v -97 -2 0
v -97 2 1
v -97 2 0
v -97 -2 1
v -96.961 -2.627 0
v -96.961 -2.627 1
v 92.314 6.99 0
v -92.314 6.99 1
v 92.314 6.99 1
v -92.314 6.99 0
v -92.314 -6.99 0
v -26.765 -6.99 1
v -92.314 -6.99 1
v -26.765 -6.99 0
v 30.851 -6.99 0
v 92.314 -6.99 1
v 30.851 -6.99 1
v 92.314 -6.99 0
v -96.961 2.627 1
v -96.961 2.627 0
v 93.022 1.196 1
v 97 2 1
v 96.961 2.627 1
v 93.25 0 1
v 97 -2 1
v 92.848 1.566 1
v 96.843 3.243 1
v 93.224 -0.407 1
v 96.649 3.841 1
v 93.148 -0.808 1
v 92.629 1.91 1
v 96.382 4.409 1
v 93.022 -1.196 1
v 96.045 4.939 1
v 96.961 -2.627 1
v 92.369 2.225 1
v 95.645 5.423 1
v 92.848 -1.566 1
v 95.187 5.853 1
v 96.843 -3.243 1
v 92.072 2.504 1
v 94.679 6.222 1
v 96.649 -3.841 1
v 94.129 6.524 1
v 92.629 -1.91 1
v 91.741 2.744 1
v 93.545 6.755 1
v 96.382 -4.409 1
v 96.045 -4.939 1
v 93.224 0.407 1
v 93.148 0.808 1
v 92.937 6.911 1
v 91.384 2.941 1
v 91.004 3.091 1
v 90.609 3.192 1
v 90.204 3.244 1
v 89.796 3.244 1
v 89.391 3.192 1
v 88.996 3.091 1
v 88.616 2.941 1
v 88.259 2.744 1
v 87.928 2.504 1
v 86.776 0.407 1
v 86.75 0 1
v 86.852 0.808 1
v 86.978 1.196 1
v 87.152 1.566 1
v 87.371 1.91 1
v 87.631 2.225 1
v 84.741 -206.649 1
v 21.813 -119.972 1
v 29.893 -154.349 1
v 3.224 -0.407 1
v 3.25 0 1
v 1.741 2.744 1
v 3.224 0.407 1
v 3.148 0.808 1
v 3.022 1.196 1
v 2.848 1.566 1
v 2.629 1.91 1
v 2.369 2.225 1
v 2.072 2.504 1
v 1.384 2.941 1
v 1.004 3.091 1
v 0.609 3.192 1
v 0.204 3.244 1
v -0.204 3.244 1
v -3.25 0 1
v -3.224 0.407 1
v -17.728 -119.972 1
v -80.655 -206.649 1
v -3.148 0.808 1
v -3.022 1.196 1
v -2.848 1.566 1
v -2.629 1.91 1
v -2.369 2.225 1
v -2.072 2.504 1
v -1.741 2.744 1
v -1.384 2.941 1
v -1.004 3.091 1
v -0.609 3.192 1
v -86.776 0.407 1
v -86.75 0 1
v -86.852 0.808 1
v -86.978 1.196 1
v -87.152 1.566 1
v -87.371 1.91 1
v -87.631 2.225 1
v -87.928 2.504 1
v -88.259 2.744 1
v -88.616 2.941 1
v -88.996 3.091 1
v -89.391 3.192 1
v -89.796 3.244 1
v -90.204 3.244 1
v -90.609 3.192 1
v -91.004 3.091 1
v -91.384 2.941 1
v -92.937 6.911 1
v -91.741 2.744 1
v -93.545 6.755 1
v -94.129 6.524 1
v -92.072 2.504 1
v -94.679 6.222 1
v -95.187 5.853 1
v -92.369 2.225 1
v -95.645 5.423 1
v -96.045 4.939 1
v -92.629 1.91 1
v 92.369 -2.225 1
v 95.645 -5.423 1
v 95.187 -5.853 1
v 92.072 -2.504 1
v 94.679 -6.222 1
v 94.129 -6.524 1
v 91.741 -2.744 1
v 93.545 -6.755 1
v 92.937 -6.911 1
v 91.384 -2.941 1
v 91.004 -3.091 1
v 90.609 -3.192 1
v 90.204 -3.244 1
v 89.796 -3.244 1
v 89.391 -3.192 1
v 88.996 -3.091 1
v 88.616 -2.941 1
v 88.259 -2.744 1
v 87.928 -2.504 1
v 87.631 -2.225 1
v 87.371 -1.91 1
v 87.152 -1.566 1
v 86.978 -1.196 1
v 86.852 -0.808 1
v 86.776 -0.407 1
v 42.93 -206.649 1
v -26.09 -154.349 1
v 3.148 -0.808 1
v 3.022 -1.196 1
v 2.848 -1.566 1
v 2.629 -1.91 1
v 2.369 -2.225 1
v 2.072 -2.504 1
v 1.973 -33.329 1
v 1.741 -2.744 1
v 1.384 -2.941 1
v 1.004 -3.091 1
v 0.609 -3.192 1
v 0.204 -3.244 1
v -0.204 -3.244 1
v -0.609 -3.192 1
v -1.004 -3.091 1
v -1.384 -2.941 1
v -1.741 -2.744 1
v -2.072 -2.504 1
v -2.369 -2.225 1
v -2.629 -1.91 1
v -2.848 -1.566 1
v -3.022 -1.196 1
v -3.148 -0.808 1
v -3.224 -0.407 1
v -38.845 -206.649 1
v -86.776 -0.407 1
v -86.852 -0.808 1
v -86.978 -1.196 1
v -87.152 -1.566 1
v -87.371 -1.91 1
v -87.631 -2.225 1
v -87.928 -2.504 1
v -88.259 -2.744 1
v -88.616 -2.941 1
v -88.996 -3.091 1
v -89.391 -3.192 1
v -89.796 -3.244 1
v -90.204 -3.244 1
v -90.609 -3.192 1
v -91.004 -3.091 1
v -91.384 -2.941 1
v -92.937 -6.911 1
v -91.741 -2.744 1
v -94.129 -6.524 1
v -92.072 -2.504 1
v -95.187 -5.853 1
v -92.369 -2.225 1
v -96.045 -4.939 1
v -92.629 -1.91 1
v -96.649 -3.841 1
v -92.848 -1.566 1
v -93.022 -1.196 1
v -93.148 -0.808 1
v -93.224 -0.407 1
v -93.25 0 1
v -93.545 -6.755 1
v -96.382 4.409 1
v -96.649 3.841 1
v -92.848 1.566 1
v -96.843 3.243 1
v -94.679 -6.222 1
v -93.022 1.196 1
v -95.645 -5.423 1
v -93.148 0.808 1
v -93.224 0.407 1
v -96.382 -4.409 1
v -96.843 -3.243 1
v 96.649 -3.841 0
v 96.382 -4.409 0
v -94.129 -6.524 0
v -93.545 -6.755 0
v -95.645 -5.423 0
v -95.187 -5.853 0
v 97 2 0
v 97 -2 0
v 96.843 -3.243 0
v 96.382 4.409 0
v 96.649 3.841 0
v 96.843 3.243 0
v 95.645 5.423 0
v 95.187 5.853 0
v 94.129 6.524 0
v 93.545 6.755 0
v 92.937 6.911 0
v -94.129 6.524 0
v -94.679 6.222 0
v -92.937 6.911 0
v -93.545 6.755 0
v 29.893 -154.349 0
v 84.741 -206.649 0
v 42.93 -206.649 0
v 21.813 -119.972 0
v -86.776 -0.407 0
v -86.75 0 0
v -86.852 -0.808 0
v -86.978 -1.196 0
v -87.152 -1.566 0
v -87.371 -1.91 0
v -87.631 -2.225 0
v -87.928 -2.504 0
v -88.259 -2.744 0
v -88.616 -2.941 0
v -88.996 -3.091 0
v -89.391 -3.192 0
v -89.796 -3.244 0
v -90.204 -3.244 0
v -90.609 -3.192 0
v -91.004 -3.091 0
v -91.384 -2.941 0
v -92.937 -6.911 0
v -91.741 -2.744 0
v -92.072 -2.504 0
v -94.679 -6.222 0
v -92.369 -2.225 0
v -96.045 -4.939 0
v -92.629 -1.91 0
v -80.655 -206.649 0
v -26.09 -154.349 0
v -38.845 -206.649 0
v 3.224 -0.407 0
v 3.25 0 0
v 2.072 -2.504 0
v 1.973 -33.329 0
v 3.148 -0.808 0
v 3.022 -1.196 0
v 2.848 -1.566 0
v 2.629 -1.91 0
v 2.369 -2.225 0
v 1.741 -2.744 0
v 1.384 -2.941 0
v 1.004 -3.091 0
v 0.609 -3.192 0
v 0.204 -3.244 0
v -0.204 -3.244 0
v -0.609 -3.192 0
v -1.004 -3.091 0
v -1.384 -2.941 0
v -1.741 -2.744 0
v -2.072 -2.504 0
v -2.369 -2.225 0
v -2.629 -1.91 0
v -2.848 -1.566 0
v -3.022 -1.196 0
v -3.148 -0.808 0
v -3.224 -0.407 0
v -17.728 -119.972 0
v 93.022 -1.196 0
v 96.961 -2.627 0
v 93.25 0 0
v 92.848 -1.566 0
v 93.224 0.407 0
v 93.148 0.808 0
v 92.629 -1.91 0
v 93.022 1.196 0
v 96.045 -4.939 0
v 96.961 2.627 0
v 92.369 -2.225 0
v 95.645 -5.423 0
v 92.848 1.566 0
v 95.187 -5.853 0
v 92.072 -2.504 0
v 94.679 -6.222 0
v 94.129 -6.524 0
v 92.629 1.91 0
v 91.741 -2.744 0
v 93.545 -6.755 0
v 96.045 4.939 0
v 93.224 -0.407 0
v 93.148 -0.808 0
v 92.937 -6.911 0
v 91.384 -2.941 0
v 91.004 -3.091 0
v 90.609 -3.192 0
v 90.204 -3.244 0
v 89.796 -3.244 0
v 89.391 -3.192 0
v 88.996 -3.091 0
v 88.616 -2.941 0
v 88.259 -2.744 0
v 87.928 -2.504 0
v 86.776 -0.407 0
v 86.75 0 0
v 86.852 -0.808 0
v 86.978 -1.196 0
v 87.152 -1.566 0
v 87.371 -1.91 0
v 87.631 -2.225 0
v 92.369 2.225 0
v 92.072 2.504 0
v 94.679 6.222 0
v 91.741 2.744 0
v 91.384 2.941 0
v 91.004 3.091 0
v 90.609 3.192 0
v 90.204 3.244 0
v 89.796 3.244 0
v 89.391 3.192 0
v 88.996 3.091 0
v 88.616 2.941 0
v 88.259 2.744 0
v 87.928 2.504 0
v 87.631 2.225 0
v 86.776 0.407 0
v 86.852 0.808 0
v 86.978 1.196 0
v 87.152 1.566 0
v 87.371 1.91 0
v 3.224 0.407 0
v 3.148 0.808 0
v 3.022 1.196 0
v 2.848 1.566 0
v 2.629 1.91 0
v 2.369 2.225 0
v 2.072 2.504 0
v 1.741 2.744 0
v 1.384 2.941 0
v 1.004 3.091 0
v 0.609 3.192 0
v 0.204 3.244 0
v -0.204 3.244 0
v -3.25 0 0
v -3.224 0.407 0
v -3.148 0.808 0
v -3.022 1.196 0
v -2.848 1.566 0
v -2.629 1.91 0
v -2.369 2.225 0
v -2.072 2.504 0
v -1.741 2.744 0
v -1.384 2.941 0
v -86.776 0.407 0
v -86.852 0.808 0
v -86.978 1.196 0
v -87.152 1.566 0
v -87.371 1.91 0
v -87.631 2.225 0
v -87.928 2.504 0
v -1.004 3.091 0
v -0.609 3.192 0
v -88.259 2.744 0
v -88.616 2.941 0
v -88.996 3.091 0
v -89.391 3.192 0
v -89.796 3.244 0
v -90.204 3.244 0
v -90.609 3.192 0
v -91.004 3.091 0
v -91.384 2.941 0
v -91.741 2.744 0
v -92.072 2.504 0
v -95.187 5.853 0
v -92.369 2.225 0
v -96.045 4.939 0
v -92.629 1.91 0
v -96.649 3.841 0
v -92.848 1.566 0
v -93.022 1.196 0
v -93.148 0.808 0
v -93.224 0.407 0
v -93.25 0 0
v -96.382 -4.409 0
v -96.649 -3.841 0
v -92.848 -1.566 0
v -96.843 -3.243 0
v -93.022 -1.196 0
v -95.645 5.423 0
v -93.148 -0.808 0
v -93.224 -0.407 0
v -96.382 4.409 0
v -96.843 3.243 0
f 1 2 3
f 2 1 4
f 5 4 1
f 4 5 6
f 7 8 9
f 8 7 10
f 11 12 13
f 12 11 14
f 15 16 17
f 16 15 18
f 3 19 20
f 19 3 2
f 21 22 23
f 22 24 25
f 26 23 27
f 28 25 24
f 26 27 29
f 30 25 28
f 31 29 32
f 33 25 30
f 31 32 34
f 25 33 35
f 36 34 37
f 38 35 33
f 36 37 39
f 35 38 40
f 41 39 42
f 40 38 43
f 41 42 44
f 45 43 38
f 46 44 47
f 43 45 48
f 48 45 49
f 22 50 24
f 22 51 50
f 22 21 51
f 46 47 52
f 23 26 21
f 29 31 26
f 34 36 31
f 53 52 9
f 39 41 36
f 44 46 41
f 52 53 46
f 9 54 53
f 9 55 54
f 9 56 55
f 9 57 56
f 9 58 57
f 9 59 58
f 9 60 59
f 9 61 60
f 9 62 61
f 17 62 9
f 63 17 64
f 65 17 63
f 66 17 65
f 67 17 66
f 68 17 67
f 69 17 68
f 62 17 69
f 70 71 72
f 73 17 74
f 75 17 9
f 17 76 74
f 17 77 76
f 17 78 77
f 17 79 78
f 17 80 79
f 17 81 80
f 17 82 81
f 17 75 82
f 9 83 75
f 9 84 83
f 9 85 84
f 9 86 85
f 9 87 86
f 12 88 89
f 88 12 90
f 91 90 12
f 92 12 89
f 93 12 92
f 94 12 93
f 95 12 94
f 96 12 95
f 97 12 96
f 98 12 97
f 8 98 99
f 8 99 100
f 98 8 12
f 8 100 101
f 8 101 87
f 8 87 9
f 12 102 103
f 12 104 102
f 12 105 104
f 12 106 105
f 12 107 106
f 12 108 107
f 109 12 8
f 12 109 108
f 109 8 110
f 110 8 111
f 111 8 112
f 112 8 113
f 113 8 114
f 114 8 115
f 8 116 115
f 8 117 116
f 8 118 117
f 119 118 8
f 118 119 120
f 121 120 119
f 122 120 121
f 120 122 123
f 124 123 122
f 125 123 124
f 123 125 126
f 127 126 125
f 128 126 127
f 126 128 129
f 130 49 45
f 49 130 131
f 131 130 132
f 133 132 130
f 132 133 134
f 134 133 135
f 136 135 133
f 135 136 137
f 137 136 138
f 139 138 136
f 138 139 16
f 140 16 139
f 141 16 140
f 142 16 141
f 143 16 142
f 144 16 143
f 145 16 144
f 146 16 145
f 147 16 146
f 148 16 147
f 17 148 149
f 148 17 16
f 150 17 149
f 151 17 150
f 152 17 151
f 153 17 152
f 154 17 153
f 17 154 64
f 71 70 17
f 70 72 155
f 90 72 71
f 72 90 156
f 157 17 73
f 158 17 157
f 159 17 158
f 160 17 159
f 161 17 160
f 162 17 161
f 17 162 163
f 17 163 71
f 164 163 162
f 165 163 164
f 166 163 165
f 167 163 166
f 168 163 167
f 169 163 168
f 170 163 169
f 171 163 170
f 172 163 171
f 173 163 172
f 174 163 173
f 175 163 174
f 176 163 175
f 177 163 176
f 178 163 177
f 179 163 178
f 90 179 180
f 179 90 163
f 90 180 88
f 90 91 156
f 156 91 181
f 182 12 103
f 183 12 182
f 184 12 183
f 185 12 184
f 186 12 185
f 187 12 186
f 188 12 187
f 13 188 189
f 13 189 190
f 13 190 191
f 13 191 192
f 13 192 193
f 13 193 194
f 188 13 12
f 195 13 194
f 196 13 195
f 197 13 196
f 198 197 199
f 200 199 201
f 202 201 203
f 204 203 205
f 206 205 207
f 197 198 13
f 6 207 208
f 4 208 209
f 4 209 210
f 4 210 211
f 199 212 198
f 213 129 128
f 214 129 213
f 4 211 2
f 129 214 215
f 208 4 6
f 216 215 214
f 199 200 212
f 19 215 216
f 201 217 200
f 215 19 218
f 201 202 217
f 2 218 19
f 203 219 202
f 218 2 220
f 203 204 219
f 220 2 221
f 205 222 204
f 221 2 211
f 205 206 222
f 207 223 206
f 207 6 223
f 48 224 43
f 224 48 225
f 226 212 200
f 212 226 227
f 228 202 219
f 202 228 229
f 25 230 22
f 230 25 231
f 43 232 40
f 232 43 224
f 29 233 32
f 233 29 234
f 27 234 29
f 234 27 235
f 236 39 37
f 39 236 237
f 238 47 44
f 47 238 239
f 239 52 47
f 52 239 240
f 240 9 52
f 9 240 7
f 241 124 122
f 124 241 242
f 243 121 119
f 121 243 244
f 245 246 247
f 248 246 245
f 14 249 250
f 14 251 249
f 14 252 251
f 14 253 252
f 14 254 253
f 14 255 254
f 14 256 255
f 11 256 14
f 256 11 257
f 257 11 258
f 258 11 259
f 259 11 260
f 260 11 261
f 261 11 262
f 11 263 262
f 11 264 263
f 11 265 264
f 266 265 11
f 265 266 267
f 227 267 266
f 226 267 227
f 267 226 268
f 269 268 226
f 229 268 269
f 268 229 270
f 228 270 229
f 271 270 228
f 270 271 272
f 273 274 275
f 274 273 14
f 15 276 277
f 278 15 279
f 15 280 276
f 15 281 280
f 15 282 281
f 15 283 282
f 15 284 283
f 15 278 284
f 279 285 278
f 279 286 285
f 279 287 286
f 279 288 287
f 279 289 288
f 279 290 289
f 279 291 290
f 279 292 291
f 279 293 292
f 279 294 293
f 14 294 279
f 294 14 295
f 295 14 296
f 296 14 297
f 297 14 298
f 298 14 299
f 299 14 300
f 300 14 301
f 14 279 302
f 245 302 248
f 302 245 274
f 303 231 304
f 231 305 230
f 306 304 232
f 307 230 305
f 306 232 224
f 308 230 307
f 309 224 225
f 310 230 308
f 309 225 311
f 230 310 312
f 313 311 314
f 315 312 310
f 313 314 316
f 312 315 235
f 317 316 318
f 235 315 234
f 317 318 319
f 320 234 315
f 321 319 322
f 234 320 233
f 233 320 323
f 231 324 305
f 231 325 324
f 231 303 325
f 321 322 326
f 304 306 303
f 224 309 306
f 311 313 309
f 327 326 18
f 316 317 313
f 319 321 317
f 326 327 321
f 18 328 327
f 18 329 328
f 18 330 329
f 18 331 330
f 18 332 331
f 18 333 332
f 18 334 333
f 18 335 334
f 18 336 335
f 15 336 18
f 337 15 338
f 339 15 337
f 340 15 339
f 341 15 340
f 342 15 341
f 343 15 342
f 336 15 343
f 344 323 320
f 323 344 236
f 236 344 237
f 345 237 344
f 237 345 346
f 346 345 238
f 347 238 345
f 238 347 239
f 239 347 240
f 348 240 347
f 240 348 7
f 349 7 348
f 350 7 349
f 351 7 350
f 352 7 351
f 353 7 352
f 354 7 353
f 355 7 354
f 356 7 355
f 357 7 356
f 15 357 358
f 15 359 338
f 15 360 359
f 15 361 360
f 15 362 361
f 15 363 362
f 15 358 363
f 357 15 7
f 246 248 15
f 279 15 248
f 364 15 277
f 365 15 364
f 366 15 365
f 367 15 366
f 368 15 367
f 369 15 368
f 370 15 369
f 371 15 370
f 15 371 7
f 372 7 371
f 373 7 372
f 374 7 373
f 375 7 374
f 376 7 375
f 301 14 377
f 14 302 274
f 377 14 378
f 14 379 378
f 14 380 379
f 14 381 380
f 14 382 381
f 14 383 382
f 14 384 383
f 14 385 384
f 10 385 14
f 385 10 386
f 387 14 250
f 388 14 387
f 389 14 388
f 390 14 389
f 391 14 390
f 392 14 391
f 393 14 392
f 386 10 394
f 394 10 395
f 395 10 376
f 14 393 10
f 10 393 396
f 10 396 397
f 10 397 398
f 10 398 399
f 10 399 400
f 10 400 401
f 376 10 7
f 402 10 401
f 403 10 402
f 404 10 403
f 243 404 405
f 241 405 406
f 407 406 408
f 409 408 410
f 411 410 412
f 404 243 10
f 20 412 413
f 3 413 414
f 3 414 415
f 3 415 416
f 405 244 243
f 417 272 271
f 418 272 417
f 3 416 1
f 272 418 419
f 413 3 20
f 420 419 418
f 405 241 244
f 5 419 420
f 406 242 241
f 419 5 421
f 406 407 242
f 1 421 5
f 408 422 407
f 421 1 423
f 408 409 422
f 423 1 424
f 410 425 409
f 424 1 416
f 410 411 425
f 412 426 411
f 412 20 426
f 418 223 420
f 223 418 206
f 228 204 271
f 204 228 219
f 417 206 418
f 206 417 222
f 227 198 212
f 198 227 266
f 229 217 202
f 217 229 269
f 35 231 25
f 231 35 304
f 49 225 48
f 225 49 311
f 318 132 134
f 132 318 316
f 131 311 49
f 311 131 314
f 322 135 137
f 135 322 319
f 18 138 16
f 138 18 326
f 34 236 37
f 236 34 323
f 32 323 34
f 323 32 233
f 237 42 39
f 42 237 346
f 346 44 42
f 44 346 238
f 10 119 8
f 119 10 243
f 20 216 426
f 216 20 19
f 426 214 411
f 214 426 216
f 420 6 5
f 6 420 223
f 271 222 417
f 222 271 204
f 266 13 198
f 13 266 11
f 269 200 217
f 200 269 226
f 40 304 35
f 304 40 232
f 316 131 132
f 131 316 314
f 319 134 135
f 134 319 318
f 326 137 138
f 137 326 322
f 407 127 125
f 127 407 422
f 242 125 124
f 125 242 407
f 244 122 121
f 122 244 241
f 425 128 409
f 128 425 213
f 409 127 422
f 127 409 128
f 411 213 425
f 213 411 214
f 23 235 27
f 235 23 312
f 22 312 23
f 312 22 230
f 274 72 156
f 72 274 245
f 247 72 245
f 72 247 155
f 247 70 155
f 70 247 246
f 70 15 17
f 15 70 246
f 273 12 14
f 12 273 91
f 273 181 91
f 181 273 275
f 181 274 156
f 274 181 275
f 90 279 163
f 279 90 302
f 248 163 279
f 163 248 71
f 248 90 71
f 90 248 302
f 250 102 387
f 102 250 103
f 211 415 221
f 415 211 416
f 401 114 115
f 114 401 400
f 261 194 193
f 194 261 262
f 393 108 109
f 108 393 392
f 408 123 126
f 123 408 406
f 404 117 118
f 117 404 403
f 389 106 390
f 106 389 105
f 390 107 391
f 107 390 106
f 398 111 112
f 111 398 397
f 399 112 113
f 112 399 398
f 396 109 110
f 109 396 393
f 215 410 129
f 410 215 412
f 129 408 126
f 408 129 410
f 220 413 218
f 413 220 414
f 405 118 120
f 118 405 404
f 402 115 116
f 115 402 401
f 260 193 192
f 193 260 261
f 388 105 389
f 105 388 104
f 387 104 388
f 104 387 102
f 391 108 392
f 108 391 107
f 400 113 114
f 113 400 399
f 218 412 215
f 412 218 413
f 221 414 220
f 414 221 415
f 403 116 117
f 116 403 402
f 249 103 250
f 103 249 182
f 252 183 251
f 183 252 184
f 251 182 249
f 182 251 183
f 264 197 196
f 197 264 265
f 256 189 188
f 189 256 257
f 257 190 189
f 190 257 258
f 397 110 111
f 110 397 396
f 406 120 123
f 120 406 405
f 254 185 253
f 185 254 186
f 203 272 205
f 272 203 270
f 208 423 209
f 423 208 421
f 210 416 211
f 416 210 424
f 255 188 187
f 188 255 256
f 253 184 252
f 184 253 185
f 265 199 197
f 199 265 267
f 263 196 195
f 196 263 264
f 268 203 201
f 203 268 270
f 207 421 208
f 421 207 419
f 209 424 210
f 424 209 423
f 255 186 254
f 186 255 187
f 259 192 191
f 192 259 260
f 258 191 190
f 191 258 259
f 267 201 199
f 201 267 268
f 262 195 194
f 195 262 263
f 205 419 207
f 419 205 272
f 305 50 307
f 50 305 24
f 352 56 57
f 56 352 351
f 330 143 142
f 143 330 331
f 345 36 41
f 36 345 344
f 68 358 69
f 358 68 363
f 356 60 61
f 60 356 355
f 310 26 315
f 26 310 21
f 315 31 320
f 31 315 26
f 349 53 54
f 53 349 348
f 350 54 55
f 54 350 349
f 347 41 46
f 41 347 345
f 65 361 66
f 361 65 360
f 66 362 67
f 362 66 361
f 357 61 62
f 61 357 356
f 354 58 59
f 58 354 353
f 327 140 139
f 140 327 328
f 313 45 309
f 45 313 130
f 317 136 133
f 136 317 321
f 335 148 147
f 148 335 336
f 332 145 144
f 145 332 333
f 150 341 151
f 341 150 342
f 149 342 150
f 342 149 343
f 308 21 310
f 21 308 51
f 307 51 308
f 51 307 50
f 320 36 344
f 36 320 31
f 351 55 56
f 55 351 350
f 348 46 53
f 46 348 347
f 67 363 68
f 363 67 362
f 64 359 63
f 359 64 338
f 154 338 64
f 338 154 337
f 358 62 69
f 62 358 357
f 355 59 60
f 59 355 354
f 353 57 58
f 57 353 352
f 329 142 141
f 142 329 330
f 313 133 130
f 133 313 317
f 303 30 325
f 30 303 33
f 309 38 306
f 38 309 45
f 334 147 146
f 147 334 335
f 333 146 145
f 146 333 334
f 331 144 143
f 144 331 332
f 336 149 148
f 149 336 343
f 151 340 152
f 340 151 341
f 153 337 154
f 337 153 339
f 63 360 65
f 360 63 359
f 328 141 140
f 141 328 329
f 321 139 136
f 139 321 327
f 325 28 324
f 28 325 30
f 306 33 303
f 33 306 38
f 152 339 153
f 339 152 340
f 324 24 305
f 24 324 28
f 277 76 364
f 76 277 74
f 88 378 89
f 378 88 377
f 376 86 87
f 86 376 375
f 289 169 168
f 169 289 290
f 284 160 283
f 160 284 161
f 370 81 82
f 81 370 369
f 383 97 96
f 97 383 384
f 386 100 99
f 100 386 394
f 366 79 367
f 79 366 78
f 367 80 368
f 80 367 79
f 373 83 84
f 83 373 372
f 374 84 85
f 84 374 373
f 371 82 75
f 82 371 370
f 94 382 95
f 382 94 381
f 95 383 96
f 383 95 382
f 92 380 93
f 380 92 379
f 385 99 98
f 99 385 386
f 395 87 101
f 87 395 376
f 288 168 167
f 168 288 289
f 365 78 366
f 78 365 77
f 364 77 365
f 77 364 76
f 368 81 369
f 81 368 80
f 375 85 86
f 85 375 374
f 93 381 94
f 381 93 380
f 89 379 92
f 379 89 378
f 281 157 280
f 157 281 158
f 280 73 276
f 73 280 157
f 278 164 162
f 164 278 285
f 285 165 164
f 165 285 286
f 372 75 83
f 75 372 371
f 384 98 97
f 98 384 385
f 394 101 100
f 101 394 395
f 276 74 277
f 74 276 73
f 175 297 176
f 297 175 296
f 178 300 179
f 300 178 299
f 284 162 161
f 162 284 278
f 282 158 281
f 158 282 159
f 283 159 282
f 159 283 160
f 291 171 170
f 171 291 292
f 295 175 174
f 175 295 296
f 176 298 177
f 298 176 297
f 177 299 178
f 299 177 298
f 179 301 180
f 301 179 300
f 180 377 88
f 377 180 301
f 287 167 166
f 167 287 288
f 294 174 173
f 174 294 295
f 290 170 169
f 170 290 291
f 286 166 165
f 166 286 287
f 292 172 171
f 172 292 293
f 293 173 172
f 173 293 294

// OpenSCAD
$fn = 50;


difference() {
	union() {
		translate(v = [0, 0, 0]) {
			rotate(a = [0, 0, 0]) {
				hull() {
					translate(v = [-92.0000000000, 2.0000000000, 0]) {
						rotate(a = [0, 0, 0]) {
							translate(v = [0, 0, 0]) {
								rotate(a = [0, 0, 0]) {
									cylinder(h = 1, r = 5);
								}
							}
						}
					}
					translate(v = [92.0000000000, 2.0000000000, 0]) {
						rotate(a = [0, 0, 0]) {
							translate(v = [0, 0, 0]) {
								rotate(a = [0, 0, 0]) {
									cylinder(h = 1, r = 5);
								}
							}
						}
					}
					translate(v = [-92.0000000000, -2.0000000000, 0]) {
						rotate(a = [0, 0, 0]) {
							translate(v = [0, 0, 0]) {
								rotate(a = [0, 0, 0]) {
									cylinder(h = 1, r = 5);
								}
							}
						}
					}
					translate(v = [92.0000000000, -2.0000000000, 0]) {
						rotate(a = [0, 0, 0]) {
							translate(v = [0, 0, 0]) {
								rotate(a = [0, 0, 0]) {
									cylinder(h = 1, r = 5);
								}
							}
						}
					}
				}
			}
		}
		translate(v = [0, 0, 0]) {
			rotate(a = [0, 0, 0]) {
				linear_extrude(height = 1) {
					text(font = "DejaVu Sans Mono:style=Bold", halign = "center", size = 209.0000000000, text = "A", valign = "top");
				}
			}
		}
	}
	union() {
		translate(v = [-90.0000000000, 0.0000000000, -125.0000000000]) {
			rotate(a = [0, 0, 0]) {
				cylinder(h = 250, r = 3.2500000000);
			}
		}
		translate(v = [90.0000000000, 0.0000000000, -125.0000000000]) {
			rotate(a = [0, 0, 0]) {
				cylinder(h = 250, r = 3.2500000000);
			}
		}
		translate(v = [90.0000000000, 0.0000000000, -125.0000000000]) {
			rotate(a = [0, 0, 0]) {
				cylinder(h = 250, r = 3.2500000000);
			}
		}
		translate(v = [0, 0, -125.0000000000]) {
			rotate(a = [0, 0, 0]) {
				cylinder(h = 250, r = 3.2500000000);
			}
		}
	}
}
